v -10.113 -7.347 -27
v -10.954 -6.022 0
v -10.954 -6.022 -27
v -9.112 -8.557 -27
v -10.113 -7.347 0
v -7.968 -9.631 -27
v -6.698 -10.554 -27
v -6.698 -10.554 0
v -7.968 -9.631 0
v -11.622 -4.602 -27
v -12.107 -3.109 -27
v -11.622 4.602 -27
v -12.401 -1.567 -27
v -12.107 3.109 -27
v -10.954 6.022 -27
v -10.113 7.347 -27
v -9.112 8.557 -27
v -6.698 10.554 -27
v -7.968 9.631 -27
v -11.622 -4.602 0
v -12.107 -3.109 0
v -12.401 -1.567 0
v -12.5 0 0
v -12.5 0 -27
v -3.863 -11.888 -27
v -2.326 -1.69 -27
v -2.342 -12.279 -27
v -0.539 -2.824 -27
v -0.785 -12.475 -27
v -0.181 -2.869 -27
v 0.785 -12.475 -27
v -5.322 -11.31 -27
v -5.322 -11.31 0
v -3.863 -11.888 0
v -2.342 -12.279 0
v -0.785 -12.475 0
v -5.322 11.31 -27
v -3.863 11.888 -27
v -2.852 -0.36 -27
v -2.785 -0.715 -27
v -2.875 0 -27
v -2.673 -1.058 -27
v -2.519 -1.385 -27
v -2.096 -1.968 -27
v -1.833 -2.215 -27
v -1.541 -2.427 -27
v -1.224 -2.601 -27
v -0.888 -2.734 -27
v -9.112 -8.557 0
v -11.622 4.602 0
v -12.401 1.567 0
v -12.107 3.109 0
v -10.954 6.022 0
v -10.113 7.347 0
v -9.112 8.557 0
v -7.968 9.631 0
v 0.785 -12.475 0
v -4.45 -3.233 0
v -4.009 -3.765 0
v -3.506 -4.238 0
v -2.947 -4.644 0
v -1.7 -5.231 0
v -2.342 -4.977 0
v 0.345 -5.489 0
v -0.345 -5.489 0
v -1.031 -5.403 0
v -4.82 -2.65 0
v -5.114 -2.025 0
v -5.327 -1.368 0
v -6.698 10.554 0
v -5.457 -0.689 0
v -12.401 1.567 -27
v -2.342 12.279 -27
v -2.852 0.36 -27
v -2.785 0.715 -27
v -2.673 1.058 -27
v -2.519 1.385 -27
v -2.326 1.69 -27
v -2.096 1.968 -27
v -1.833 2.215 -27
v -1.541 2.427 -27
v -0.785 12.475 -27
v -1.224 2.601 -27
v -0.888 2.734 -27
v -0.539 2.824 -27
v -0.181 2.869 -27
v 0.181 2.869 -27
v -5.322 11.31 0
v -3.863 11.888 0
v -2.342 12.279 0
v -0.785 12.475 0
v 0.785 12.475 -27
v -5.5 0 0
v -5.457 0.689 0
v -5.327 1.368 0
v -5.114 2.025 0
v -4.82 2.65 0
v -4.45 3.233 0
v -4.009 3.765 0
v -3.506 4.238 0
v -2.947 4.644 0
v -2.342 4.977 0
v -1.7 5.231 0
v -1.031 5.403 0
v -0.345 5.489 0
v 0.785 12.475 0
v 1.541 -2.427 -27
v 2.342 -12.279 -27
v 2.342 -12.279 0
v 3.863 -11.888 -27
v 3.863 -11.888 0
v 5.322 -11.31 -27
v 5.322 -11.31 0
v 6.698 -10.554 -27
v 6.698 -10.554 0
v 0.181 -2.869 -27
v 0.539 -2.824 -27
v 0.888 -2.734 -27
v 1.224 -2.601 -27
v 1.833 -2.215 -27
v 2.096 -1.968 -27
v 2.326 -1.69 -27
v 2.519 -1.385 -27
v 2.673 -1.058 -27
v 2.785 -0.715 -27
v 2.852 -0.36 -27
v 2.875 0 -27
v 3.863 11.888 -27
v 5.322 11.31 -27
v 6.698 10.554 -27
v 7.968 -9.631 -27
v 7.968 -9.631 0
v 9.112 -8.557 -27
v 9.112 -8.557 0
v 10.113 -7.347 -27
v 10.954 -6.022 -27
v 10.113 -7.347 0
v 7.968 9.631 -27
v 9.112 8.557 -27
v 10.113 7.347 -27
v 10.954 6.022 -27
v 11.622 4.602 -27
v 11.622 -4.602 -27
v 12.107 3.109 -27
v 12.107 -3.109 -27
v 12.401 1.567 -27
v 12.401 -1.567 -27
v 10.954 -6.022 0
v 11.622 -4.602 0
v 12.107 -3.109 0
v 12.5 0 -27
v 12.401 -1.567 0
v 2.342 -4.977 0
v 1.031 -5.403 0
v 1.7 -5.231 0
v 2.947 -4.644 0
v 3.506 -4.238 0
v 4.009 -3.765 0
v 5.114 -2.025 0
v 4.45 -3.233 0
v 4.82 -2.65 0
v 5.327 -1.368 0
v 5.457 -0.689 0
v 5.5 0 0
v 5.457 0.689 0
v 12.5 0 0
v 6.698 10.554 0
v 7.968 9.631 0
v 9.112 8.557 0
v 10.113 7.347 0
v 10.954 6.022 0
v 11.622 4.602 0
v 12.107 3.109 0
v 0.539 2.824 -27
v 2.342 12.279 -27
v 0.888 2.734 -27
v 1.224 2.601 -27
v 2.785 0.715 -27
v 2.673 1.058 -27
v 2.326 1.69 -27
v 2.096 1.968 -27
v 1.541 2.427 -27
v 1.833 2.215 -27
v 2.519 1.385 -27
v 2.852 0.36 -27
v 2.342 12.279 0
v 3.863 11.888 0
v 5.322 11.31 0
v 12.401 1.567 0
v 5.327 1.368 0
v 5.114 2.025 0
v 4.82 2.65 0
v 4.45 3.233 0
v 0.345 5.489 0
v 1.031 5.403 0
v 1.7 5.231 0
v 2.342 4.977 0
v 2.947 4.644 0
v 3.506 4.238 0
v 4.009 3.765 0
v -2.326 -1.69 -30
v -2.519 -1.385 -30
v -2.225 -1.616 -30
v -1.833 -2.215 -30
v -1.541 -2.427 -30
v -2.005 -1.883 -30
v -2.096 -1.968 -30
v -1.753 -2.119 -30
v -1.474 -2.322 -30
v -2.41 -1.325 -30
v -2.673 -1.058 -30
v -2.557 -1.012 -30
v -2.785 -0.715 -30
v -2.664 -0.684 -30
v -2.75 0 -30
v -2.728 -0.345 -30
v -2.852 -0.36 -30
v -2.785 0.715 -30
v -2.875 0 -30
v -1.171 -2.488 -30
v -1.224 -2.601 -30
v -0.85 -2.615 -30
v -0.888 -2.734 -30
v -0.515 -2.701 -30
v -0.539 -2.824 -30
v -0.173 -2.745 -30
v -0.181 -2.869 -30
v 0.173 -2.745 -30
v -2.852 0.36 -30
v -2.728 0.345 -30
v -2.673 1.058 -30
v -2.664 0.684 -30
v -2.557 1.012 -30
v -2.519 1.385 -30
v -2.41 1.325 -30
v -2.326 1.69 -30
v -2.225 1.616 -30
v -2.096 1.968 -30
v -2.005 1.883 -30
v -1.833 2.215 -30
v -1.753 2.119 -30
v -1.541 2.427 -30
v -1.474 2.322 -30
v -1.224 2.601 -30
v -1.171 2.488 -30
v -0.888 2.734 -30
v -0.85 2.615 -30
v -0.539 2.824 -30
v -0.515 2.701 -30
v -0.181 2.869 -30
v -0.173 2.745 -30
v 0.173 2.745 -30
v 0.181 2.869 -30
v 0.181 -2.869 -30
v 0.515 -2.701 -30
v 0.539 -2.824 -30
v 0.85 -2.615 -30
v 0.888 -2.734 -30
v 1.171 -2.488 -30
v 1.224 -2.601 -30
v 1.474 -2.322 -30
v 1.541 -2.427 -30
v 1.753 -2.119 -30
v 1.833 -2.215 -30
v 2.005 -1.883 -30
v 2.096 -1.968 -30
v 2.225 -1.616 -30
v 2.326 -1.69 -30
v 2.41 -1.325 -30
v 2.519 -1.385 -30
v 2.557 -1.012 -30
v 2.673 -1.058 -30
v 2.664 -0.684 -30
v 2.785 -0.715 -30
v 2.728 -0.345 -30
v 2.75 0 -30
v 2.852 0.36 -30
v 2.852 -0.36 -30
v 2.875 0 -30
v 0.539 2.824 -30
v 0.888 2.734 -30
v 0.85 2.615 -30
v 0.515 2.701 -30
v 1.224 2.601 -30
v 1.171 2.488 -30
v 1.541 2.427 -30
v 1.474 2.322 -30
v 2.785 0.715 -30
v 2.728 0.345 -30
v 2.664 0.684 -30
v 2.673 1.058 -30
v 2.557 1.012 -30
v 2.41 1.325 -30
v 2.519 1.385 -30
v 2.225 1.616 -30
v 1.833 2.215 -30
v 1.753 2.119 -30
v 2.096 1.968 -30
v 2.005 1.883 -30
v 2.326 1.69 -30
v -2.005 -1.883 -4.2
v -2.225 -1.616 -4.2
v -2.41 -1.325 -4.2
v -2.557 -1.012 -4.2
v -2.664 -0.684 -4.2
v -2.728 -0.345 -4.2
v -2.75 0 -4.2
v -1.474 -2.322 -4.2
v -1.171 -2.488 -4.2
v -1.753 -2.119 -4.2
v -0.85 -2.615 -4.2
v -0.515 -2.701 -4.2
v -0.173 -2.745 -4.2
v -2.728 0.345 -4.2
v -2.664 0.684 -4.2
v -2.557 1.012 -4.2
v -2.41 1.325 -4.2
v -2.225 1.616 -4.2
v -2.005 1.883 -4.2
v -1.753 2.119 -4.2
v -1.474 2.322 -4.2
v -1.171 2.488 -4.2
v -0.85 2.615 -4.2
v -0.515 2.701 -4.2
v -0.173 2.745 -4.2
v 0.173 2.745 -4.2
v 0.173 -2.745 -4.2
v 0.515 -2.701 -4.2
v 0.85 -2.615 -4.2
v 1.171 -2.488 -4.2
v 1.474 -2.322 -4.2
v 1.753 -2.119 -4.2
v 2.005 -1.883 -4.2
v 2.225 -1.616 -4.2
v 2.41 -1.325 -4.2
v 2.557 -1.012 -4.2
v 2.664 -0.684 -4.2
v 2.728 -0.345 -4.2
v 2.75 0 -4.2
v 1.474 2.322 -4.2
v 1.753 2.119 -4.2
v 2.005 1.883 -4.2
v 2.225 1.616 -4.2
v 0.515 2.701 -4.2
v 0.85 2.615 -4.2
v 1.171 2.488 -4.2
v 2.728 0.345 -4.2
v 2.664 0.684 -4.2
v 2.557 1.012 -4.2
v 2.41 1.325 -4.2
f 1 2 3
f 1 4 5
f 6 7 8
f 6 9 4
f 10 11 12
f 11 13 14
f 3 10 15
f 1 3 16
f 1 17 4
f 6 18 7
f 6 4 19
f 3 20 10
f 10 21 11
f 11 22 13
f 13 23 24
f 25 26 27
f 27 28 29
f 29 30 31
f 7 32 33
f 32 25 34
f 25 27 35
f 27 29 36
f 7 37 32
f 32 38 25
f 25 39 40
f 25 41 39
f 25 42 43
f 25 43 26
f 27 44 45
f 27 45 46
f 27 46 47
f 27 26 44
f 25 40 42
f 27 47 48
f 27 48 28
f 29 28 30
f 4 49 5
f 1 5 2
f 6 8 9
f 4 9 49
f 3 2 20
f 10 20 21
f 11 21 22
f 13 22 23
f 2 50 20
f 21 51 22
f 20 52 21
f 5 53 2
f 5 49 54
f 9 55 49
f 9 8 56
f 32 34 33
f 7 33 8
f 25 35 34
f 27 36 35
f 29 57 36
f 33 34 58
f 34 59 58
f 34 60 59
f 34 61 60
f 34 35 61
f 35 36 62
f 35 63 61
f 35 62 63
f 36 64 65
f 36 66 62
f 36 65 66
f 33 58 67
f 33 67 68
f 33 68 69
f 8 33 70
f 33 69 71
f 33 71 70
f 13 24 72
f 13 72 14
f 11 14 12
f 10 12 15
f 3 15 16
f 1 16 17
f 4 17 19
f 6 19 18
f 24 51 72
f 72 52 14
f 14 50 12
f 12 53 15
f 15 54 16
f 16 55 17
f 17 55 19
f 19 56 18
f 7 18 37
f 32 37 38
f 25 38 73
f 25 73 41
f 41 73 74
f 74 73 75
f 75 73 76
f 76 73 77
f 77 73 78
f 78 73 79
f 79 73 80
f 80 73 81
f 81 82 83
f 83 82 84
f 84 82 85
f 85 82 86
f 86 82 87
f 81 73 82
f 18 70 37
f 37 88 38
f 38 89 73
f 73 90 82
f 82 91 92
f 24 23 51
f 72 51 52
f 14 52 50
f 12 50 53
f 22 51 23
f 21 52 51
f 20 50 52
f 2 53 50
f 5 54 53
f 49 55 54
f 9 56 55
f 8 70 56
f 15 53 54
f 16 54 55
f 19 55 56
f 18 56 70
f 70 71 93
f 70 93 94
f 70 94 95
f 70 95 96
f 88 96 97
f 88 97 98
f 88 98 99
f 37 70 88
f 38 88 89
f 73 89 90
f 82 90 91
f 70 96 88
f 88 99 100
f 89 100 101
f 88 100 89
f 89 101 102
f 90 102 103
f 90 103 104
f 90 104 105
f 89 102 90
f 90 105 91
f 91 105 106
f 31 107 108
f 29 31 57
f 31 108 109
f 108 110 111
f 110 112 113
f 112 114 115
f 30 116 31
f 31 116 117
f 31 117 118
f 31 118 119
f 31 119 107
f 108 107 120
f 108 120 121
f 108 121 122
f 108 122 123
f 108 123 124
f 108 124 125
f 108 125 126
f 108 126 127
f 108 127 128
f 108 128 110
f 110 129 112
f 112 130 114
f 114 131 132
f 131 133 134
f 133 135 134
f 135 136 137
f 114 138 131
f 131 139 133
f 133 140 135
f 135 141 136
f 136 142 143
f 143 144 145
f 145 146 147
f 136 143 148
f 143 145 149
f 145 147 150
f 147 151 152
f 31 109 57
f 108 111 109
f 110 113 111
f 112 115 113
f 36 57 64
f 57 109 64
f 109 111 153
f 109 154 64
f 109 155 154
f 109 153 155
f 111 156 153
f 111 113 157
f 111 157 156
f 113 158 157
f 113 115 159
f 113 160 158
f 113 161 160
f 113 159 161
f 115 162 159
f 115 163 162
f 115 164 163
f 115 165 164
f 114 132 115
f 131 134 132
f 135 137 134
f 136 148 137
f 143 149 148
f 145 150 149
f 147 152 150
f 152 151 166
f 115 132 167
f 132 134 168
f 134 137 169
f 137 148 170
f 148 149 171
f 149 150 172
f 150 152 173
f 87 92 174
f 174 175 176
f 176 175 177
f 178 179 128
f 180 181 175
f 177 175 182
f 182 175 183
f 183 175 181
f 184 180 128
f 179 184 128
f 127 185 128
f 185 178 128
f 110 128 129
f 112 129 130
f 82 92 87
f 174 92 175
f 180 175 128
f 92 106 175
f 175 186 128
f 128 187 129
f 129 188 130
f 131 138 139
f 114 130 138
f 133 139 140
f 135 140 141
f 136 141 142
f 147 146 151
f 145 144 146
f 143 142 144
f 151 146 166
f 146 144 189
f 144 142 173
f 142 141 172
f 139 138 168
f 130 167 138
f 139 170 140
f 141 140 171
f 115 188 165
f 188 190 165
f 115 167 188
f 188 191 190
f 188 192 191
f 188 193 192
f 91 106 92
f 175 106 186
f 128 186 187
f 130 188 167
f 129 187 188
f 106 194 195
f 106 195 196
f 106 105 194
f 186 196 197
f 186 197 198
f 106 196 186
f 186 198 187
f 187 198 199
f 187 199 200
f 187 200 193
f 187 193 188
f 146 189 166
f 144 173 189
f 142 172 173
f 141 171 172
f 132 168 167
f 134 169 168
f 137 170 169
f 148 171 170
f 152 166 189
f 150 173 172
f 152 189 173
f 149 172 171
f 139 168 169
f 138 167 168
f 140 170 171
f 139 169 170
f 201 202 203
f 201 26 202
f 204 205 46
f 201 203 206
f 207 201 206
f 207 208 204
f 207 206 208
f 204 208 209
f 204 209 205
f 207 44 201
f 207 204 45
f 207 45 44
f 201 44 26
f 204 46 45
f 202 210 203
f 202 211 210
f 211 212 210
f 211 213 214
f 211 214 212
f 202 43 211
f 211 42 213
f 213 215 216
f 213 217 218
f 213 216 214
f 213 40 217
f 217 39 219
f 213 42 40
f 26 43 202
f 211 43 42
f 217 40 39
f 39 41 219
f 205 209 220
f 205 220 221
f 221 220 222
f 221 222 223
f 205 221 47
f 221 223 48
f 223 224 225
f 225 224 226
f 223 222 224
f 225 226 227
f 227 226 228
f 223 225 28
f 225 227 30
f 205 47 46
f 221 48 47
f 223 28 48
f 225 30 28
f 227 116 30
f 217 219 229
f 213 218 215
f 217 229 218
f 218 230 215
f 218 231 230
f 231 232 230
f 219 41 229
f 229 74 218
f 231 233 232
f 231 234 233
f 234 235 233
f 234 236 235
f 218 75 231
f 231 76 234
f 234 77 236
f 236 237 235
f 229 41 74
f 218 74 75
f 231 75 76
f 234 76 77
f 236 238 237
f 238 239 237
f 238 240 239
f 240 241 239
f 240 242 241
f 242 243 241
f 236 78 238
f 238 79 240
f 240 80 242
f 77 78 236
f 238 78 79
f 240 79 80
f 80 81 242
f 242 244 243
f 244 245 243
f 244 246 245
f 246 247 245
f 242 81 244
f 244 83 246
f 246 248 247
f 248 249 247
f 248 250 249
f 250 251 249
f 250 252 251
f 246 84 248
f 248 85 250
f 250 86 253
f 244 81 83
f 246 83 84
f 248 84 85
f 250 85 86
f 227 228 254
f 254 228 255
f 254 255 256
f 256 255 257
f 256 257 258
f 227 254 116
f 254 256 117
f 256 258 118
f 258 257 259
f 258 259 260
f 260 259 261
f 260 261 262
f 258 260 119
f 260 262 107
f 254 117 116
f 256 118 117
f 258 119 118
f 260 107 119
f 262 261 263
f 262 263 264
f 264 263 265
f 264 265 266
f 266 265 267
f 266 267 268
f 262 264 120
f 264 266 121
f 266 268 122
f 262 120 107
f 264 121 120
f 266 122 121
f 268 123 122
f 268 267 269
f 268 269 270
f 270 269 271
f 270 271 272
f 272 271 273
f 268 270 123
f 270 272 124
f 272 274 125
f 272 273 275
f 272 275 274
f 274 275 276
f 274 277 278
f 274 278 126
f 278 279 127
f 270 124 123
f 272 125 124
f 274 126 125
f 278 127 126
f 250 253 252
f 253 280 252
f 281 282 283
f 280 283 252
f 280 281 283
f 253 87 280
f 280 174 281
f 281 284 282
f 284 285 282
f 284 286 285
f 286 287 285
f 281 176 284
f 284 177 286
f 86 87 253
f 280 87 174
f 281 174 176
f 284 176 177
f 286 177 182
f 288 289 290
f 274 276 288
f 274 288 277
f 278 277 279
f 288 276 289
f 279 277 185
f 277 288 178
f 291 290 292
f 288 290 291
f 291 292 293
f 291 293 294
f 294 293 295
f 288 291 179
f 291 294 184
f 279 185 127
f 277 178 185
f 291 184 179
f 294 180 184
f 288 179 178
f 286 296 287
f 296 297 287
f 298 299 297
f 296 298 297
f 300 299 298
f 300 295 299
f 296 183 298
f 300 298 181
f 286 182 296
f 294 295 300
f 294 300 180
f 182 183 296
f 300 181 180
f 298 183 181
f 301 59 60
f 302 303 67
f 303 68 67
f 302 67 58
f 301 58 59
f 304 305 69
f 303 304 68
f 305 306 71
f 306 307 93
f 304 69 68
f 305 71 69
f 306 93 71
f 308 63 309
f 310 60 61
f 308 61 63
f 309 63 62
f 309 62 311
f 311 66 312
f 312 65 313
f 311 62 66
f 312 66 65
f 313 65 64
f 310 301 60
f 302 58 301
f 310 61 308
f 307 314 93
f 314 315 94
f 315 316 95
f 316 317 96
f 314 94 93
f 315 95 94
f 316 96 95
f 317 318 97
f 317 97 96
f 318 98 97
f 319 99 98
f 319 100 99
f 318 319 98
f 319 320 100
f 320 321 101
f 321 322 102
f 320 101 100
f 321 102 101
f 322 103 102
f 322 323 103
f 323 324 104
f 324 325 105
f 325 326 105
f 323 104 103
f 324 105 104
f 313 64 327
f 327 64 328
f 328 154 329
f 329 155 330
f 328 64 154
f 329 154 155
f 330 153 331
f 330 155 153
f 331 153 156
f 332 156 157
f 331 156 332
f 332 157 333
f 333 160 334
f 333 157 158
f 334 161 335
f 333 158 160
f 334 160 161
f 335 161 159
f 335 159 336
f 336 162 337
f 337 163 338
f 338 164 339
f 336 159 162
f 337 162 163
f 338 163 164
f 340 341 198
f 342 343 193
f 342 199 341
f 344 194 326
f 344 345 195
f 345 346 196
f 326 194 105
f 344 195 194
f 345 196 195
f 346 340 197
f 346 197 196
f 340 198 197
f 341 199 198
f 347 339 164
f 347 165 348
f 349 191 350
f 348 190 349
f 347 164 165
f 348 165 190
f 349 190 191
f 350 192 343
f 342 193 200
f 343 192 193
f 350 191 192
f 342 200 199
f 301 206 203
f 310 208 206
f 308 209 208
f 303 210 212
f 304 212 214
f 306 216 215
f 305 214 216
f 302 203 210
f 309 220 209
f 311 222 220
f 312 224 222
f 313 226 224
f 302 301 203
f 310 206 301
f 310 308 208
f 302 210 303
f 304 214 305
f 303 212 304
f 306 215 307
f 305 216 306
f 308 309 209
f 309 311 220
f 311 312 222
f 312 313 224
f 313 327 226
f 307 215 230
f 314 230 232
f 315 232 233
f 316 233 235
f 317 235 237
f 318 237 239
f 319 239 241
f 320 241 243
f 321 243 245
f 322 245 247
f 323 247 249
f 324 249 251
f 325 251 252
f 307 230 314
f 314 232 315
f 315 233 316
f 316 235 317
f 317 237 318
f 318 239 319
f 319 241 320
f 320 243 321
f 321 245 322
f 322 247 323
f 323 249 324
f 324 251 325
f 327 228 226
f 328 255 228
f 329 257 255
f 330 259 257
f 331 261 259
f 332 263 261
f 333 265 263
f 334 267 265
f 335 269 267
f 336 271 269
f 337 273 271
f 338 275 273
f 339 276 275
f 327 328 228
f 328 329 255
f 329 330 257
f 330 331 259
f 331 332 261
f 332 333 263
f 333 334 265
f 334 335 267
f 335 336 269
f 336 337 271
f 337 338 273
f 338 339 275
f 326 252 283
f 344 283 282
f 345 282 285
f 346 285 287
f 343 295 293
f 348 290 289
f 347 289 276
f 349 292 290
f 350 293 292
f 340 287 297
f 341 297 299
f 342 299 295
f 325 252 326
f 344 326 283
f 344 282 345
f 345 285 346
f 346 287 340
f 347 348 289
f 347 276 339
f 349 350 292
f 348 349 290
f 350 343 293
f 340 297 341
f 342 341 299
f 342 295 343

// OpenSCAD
$fn = 50;


difference() {
	union() {
		translate(v = [0, 0, -27.0000000000]) {
			cylinder(h = 27, r = 12.5000000000);
		}
		#translate(v = [0, 0, -30.0000000000]) {
			cylinder(h = 30, r = 2.8750000000);
		}
	}
	union() {
		translate(v = [0, 0, 0]) {
			rotate(a = [0, 0, 0]) {
				difference() {
					union() {
						translate(v = [0, 0, -30.0000000000]) {
							cylinder(h = 30, r = 2.2500000000);
						}
						translate(v = [0, 0, -4.2000000000]) {
							cylinder(h = 4.2000000000, r1 = 2.7500000000, r2 = 5.5000000000);
						}
						translate(v = [0, 0, -30.0000000000]) {
							cylinder(h = 30, r = 2.7500000000);
						}
						translate(v = [0, 0, -30.0000000000]) {
							cylinder(h = 30, r = 2.2500000000);
						}
					}
					union();
				}
			}
		}
	}
}
